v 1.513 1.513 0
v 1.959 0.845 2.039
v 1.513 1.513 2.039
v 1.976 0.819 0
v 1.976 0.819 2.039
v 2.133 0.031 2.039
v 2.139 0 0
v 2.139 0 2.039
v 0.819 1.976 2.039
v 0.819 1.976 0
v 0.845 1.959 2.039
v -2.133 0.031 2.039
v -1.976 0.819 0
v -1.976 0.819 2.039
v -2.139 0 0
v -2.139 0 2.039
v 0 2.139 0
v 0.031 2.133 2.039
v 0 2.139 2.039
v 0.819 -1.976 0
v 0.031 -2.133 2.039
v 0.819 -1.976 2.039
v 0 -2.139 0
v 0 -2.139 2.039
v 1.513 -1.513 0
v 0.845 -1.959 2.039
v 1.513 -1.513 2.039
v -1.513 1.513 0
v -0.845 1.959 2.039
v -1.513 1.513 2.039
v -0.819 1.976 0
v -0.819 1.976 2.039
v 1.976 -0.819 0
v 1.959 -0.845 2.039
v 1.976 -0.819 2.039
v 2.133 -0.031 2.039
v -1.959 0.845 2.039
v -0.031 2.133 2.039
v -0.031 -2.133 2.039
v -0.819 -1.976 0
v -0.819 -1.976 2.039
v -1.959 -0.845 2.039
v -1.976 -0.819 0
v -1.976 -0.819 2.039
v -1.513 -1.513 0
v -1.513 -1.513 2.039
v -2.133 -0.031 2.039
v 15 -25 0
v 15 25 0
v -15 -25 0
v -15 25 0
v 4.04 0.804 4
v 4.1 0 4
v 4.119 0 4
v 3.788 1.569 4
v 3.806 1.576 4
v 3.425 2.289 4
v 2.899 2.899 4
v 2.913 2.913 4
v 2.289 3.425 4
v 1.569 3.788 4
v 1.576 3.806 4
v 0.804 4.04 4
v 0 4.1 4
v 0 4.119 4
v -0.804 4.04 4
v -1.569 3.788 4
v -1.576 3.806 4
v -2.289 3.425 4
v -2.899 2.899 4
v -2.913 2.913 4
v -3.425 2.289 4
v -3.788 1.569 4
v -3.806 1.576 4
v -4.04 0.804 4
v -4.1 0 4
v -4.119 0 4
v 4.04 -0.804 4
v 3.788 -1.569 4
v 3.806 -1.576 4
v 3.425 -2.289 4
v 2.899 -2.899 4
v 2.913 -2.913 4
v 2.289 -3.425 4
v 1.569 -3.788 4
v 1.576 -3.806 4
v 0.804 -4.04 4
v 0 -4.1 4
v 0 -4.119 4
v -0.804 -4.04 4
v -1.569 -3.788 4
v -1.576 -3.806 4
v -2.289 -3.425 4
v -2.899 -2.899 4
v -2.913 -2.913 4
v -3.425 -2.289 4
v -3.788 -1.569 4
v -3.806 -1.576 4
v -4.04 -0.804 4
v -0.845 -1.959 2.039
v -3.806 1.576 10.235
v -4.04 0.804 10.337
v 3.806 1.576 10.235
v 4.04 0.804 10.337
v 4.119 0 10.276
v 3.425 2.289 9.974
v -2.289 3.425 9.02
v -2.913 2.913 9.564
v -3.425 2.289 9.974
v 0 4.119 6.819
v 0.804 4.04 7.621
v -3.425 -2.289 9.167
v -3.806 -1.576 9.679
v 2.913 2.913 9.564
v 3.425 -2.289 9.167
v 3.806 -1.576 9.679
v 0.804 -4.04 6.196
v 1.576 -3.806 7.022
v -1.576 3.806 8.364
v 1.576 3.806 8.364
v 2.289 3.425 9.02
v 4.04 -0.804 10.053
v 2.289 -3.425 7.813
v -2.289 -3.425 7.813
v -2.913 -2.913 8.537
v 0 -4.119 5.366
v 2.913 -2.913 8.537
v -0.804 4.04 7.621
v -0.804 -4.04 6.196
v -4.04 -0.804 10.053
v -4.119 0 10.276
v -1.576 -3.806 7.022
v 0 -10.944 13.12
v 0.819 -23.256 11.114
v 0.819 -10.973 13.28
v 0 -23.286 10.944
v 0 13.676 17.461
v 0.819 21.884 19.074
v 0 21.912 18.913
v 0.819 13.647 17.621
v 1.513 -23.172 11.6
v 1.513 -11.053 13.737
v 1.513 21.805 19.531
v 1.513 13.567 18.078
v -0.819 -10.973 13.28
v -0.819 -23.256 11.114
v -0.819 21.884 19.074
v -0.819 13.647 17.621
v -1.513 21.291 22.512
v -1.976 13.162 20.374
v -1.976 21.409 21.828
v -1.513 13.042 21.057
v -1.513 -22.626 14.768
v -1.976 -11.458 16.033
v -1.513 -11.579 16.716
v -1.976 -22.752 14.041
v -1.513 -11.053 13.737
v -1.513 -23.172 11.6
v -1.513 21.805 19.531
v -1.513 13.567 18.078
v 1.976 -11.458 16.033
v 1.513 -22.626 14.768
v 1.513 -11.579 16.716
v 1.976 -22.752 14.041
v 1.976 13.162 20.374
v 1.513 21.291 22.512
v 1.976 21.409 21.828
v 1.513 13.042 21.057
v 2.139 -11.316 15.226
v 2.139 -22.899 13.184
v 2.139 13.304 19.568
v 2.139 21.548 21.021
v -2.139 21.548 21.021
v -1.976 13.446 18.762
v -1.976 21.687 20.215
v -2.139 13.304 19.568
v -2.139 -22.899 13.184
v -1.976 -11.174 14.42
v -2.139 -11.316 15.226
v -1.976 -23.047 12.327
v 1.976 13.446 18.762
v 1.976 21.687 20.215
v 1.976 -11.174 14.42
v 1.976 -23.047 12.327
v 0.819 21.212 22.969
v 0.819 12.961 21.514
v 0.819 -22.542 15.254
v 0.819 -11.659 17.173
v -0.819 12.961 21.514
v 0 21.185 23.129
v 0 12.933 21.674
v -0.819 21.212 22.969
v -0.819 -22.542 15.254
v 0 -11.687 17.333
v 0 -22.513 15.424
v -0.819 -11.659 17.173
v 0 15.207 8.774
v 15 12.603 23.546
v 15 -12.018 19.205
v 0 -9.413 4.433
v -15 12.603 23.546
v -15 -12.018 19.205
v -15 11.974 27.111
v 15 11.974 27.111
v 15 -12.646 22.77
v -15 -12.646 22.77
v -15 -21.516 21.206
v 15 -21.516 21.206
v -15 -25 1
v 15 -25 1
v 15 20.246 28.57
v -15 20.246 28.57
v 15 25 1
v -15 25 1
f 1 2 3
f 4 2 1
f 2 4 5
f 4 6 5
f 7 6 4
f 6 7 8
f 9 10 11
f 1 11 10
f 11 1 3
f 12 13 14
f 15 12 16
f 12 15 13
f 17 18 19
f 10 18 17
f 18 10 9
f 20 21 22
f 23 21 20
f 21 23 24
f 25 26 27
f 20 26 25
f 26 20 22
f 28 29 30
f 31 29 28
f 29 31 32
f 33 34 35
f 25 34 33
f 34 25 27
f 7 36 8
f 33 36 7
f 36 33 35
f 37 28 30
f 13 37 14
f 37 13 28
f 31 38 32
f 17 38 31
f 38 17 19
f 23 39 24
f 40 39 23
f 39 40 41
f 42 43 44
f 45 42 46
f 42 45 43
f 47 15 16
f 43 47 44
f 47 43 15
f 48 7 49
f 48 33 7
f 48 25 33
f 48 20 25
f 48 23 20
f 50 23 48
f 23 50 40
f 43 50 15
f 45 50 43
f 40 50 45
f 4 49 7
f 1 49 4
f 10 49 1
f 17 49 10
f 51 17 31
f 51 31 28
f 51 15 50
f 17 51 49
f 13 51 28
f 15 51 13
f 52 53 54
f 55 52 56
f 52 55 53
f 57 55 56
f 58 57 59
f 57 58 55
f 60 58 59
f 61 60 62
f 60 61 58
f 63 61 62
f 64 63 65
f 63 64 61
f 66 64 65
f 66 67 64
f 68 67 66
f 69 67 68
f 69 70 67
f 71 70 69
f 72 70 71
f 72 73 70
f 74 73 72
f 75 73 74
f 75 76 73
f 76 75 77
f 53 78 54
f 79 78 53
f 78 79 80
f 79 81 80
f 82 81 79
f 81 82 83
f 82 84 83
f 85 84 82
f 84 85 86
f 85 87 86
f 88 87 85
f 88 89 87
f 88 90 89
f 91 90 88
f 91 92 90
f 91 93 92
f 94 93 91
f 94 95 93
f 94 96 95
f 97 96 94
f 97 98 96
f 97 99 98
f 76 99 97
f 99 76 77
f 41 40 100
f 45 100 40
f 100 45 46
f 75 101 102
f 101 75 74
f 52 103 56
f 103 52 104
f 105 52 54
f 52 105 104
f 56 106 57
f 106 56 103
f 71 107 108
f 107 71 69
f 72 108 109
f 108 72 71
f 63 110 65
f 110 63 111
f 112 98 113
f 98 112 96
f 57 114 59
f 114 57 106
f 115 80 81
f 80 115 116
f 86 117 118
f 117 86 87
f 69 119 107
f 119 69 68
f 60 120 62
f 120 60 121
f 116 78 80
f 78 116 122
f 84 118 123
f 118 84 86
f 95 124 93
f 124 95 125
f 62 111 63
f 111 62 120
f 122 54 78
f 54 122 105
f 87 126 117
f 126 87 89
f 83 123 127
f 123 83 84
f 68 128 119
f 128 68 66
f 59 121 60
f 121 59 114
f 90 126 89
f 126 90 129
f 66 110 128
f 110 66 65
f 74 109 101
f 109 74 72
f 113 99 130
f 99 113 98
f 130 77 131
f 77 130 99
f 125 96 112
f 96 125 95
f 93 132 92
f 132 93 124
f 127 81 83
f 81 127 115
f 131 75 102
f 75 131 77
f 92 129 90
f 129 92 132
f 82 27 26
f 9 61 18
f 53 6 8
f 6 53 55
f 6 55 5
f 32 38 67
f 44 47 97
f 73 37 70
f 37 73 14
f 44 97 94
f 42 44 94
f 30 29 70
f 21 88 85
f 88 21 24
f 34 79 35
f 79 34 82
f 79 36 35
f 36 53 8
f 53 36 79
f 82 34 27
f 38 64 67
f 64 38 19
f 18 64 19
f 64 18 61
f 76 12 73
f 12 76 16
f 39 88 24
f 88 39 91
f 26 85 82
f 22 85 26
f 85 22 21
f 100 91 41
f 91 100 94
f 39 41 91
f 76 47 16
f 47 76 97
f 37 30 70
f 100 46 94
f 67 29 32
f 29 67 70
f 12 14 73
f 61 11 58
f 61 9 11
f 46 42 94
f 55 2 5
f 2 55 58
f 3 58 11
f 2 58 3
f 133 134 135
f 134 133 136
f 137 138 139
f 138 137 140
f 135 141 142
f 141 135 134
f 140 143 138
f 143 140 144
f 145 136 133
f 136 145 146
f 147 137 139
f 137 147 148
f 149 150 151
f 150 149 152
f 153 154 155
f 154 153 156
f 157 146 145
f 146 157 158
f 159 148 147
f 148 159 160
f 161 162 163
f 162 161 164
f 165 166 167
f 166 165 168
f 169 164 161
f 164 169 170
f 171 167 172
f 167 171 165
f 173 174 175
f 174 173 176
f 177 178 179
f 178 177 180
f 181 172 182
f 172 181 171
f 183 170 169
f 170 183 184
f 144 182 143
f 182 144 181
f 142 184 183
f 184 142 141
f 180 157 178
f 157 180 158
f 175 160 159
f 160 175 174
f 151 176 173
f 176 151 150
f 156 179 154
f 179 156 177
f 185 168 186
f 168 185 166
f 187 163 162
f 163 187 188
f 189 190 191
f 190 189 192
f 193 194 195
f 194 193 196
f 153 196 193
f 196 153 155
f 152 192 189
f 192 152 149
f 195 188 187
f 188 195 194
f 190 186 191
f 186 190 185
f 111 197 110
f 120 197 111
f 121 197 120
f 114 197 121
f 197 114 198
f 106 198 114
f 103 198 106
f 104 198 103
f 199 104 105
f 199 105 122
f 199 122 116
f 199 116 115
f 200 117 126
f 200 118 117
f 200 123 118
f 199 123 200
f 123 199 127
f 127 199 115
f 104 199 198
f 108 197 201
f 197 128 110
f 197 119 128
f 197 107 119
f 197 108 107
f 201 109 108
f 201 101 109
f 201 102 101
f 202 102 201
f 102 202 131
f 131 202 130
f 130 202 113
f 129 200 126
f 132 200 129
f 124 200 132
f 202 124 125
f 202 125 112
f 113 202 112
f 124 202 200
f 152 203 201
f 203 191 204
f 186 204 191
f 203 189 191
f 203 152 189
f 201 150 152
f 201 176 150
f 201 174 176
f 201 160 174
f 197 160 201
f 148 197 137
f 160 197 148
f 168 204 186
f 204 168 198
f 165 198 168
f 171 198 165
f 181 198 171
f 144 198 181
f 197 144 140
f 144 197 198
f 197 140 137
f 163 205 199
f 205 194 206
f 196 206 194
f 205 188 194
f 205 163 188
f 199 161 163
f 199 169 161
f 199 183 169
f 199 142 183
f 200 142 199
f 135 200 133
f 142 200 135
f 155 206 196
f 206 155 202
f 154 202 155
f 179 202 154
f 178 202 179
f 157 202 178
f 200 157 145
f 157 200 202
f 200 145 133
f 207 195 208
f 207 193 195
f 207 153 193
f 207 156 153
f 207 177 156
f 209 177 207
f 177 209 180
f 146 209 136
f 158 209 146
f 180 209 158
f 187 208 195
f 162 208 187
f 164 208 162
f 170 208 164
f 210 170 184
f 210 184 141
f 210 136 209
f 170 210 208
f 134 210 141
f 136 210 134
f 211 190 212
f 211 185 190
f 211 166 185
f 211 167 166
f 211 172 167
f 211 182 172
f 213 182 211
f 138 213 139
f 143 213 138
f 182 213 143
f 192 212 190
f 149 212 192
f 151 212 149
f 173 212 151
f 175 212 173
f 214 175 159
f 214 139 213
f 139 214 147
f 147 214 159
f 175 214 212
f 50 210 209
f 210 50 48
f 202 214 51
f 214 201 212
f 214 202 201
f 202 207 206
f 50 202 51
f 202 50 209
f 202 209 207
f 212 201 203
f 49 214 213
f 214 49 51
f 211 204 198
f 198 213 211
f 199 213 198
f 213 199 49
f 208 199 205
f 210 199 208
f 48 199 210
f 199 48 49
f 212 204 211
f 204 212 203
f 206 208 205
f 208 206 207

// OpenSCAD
// file: zcube.scad
// This function creates a cube with a given x/y either above (f=1) or below (f=-1) the z axis.
module zcube(dimensions, z=0, f=1) {
	translate([0, 0, dimensions[2]/2 * f + z]) cube(dimensions, true);
}
// file: bolts.scad
$radial_error = 0.1;
$fn = 4*4;

module cylinder_outer(height, radius, fn=$fn, radial_error=$radial_error) {
	fudge = 1/cos(180/fn);
	cylinder(h=height,r=radius*fudge+$radial_error, $fn=fn);
}

module cylinder_inner(height, radius, fn=$fn) {
	cylinder(h=height,r=radius-$radial_error,$fn=fn);
}

// Make a hole. The diameter is the size of the screw (e.g. 3 for M3). Depth is how far the hole should go for the thread, and inset is how far out there should be a hole for the head to go.
module hole(diameter=3, depth=6, inset=10) {
	cylinder_outer(depth, diameter/2);
	translate([0, 0, depth]) cylinder_outer(inset, diameter, 32);
}

module countersunk_hole(diameter=3, depth=6, inset=10) {
	hole(diameter, depth, inset);
	translate([0, 0, depth-diameter/2]) cylinder(r1=diameter/2+$radial_error, r2=diameter+$radial_error, h=diameter/2);
}

module threaded_countersunk_hole(diameter=3, depth=6, inset=10) {
	hole(diameter*0.9, depth, inset);
	translate([0, 0, depth-diameter/2]) cylinder(r1=diameter/2+$radial_error, r2=diameter+$radial_error, h=diameter/2);
}

module knurled_insert(diameter = 3, depth = 6, thickness = 1) {
	cylinder_inner(depth, diameter/2 + thickness);
}

module knurled_hole(diameter = 3, depth = 6, inset = 10, insert = 4, thickness = 1) {
	hole(diameter, depth, inset);
	
	knurled_insert(diameter, insert, thickness);
}

module countersunk_knurled_hole(diameter = 3, depth = 6, inset = 10, insert = 4, thickness = 1) {
	countersunk_hole(diameter, depth, inset);
	
	knurled_insert(diameter, insert, thickness);
}

// Make a hole for a bolt/screw combination.
module bolted_hole(diameter=3, depth=8, nut_offset=2, shaft_length=10, inset=10) {
	hole(diameter, depth, inset);
	hull() {
		shaft_width = diameter;
		translate([0, 0, nut_offset]) rotate(360/12, [0, 0, 1]) cylinder_outer(diameter, shaft_width, 6);
		translate([0, shaft_length, nut_offset]) rotate(360/12, [0, 0, 1]) cylinder_outer(diameter, shaft_width, 6);
	}
}

module countersunk_bolted_hole(diameter=3, depth=8, nut_offset=2, shaft_length=10, inset=10) {
	countersunk_hole(diameter, depth, inset);
	hull() {
		shaft_width = diameter;
		translate([0, 0, nut_offset]) rotate(360/12, [0, 0, 1]) cylinder_outer(diameter, shaft_width, 6);
		translate([0, shaft_length, nut_offset]) rotate(360/12, [0, 0, 1]) cylinder_outer(diameter, shaft_width, 6);
	}
}

module mounting_hole(diameter=3, depth=6, inset=10, outset=3) {
	difference() {
		cylinder_outer(depth, diameter/2+outset);
		hole(diameter=diameter, depth=depth, inset=inset);
	}
}

render() rotate(90, [1, 0, 0]) difference() {
	cube([40, 10, 10]);
	translate([5, 5, 0]) bolted_hole(diameter=3, depth=8);
	translate([15, 5, 0]) bolted_hole(diameter=4, depth=8);
	translate([25, 5, 0]) countersunk_hole(diameter=4, depth=8);
	translate([35, 5, 0]) knurled_hole();
}
// main file
use <bolts.scad>;
use <zcube.scad>;

difference() {
	hull() {
		zcube([30, 50, 1]);
		zcube([30, 40, 30]);
	}
	
	countersunk_hole(4, 4);
	
	rotate([10, 0, 0])
	translate([0, 4, 6 + sqrt(140*140+140*140)/2]) {
		rotate([0, 45, 0]) {
			cube([140, 25, 140], center=true);
			
			translate([124.5/2, -30, -124.5/2])
			rotate([-90, 0, 0])
			hole(4, 60);
		}
	}
	
	translate([0, 0, 25])
	rotate([10, 0, 0])
	zcube([50, 50, 50]);
}
